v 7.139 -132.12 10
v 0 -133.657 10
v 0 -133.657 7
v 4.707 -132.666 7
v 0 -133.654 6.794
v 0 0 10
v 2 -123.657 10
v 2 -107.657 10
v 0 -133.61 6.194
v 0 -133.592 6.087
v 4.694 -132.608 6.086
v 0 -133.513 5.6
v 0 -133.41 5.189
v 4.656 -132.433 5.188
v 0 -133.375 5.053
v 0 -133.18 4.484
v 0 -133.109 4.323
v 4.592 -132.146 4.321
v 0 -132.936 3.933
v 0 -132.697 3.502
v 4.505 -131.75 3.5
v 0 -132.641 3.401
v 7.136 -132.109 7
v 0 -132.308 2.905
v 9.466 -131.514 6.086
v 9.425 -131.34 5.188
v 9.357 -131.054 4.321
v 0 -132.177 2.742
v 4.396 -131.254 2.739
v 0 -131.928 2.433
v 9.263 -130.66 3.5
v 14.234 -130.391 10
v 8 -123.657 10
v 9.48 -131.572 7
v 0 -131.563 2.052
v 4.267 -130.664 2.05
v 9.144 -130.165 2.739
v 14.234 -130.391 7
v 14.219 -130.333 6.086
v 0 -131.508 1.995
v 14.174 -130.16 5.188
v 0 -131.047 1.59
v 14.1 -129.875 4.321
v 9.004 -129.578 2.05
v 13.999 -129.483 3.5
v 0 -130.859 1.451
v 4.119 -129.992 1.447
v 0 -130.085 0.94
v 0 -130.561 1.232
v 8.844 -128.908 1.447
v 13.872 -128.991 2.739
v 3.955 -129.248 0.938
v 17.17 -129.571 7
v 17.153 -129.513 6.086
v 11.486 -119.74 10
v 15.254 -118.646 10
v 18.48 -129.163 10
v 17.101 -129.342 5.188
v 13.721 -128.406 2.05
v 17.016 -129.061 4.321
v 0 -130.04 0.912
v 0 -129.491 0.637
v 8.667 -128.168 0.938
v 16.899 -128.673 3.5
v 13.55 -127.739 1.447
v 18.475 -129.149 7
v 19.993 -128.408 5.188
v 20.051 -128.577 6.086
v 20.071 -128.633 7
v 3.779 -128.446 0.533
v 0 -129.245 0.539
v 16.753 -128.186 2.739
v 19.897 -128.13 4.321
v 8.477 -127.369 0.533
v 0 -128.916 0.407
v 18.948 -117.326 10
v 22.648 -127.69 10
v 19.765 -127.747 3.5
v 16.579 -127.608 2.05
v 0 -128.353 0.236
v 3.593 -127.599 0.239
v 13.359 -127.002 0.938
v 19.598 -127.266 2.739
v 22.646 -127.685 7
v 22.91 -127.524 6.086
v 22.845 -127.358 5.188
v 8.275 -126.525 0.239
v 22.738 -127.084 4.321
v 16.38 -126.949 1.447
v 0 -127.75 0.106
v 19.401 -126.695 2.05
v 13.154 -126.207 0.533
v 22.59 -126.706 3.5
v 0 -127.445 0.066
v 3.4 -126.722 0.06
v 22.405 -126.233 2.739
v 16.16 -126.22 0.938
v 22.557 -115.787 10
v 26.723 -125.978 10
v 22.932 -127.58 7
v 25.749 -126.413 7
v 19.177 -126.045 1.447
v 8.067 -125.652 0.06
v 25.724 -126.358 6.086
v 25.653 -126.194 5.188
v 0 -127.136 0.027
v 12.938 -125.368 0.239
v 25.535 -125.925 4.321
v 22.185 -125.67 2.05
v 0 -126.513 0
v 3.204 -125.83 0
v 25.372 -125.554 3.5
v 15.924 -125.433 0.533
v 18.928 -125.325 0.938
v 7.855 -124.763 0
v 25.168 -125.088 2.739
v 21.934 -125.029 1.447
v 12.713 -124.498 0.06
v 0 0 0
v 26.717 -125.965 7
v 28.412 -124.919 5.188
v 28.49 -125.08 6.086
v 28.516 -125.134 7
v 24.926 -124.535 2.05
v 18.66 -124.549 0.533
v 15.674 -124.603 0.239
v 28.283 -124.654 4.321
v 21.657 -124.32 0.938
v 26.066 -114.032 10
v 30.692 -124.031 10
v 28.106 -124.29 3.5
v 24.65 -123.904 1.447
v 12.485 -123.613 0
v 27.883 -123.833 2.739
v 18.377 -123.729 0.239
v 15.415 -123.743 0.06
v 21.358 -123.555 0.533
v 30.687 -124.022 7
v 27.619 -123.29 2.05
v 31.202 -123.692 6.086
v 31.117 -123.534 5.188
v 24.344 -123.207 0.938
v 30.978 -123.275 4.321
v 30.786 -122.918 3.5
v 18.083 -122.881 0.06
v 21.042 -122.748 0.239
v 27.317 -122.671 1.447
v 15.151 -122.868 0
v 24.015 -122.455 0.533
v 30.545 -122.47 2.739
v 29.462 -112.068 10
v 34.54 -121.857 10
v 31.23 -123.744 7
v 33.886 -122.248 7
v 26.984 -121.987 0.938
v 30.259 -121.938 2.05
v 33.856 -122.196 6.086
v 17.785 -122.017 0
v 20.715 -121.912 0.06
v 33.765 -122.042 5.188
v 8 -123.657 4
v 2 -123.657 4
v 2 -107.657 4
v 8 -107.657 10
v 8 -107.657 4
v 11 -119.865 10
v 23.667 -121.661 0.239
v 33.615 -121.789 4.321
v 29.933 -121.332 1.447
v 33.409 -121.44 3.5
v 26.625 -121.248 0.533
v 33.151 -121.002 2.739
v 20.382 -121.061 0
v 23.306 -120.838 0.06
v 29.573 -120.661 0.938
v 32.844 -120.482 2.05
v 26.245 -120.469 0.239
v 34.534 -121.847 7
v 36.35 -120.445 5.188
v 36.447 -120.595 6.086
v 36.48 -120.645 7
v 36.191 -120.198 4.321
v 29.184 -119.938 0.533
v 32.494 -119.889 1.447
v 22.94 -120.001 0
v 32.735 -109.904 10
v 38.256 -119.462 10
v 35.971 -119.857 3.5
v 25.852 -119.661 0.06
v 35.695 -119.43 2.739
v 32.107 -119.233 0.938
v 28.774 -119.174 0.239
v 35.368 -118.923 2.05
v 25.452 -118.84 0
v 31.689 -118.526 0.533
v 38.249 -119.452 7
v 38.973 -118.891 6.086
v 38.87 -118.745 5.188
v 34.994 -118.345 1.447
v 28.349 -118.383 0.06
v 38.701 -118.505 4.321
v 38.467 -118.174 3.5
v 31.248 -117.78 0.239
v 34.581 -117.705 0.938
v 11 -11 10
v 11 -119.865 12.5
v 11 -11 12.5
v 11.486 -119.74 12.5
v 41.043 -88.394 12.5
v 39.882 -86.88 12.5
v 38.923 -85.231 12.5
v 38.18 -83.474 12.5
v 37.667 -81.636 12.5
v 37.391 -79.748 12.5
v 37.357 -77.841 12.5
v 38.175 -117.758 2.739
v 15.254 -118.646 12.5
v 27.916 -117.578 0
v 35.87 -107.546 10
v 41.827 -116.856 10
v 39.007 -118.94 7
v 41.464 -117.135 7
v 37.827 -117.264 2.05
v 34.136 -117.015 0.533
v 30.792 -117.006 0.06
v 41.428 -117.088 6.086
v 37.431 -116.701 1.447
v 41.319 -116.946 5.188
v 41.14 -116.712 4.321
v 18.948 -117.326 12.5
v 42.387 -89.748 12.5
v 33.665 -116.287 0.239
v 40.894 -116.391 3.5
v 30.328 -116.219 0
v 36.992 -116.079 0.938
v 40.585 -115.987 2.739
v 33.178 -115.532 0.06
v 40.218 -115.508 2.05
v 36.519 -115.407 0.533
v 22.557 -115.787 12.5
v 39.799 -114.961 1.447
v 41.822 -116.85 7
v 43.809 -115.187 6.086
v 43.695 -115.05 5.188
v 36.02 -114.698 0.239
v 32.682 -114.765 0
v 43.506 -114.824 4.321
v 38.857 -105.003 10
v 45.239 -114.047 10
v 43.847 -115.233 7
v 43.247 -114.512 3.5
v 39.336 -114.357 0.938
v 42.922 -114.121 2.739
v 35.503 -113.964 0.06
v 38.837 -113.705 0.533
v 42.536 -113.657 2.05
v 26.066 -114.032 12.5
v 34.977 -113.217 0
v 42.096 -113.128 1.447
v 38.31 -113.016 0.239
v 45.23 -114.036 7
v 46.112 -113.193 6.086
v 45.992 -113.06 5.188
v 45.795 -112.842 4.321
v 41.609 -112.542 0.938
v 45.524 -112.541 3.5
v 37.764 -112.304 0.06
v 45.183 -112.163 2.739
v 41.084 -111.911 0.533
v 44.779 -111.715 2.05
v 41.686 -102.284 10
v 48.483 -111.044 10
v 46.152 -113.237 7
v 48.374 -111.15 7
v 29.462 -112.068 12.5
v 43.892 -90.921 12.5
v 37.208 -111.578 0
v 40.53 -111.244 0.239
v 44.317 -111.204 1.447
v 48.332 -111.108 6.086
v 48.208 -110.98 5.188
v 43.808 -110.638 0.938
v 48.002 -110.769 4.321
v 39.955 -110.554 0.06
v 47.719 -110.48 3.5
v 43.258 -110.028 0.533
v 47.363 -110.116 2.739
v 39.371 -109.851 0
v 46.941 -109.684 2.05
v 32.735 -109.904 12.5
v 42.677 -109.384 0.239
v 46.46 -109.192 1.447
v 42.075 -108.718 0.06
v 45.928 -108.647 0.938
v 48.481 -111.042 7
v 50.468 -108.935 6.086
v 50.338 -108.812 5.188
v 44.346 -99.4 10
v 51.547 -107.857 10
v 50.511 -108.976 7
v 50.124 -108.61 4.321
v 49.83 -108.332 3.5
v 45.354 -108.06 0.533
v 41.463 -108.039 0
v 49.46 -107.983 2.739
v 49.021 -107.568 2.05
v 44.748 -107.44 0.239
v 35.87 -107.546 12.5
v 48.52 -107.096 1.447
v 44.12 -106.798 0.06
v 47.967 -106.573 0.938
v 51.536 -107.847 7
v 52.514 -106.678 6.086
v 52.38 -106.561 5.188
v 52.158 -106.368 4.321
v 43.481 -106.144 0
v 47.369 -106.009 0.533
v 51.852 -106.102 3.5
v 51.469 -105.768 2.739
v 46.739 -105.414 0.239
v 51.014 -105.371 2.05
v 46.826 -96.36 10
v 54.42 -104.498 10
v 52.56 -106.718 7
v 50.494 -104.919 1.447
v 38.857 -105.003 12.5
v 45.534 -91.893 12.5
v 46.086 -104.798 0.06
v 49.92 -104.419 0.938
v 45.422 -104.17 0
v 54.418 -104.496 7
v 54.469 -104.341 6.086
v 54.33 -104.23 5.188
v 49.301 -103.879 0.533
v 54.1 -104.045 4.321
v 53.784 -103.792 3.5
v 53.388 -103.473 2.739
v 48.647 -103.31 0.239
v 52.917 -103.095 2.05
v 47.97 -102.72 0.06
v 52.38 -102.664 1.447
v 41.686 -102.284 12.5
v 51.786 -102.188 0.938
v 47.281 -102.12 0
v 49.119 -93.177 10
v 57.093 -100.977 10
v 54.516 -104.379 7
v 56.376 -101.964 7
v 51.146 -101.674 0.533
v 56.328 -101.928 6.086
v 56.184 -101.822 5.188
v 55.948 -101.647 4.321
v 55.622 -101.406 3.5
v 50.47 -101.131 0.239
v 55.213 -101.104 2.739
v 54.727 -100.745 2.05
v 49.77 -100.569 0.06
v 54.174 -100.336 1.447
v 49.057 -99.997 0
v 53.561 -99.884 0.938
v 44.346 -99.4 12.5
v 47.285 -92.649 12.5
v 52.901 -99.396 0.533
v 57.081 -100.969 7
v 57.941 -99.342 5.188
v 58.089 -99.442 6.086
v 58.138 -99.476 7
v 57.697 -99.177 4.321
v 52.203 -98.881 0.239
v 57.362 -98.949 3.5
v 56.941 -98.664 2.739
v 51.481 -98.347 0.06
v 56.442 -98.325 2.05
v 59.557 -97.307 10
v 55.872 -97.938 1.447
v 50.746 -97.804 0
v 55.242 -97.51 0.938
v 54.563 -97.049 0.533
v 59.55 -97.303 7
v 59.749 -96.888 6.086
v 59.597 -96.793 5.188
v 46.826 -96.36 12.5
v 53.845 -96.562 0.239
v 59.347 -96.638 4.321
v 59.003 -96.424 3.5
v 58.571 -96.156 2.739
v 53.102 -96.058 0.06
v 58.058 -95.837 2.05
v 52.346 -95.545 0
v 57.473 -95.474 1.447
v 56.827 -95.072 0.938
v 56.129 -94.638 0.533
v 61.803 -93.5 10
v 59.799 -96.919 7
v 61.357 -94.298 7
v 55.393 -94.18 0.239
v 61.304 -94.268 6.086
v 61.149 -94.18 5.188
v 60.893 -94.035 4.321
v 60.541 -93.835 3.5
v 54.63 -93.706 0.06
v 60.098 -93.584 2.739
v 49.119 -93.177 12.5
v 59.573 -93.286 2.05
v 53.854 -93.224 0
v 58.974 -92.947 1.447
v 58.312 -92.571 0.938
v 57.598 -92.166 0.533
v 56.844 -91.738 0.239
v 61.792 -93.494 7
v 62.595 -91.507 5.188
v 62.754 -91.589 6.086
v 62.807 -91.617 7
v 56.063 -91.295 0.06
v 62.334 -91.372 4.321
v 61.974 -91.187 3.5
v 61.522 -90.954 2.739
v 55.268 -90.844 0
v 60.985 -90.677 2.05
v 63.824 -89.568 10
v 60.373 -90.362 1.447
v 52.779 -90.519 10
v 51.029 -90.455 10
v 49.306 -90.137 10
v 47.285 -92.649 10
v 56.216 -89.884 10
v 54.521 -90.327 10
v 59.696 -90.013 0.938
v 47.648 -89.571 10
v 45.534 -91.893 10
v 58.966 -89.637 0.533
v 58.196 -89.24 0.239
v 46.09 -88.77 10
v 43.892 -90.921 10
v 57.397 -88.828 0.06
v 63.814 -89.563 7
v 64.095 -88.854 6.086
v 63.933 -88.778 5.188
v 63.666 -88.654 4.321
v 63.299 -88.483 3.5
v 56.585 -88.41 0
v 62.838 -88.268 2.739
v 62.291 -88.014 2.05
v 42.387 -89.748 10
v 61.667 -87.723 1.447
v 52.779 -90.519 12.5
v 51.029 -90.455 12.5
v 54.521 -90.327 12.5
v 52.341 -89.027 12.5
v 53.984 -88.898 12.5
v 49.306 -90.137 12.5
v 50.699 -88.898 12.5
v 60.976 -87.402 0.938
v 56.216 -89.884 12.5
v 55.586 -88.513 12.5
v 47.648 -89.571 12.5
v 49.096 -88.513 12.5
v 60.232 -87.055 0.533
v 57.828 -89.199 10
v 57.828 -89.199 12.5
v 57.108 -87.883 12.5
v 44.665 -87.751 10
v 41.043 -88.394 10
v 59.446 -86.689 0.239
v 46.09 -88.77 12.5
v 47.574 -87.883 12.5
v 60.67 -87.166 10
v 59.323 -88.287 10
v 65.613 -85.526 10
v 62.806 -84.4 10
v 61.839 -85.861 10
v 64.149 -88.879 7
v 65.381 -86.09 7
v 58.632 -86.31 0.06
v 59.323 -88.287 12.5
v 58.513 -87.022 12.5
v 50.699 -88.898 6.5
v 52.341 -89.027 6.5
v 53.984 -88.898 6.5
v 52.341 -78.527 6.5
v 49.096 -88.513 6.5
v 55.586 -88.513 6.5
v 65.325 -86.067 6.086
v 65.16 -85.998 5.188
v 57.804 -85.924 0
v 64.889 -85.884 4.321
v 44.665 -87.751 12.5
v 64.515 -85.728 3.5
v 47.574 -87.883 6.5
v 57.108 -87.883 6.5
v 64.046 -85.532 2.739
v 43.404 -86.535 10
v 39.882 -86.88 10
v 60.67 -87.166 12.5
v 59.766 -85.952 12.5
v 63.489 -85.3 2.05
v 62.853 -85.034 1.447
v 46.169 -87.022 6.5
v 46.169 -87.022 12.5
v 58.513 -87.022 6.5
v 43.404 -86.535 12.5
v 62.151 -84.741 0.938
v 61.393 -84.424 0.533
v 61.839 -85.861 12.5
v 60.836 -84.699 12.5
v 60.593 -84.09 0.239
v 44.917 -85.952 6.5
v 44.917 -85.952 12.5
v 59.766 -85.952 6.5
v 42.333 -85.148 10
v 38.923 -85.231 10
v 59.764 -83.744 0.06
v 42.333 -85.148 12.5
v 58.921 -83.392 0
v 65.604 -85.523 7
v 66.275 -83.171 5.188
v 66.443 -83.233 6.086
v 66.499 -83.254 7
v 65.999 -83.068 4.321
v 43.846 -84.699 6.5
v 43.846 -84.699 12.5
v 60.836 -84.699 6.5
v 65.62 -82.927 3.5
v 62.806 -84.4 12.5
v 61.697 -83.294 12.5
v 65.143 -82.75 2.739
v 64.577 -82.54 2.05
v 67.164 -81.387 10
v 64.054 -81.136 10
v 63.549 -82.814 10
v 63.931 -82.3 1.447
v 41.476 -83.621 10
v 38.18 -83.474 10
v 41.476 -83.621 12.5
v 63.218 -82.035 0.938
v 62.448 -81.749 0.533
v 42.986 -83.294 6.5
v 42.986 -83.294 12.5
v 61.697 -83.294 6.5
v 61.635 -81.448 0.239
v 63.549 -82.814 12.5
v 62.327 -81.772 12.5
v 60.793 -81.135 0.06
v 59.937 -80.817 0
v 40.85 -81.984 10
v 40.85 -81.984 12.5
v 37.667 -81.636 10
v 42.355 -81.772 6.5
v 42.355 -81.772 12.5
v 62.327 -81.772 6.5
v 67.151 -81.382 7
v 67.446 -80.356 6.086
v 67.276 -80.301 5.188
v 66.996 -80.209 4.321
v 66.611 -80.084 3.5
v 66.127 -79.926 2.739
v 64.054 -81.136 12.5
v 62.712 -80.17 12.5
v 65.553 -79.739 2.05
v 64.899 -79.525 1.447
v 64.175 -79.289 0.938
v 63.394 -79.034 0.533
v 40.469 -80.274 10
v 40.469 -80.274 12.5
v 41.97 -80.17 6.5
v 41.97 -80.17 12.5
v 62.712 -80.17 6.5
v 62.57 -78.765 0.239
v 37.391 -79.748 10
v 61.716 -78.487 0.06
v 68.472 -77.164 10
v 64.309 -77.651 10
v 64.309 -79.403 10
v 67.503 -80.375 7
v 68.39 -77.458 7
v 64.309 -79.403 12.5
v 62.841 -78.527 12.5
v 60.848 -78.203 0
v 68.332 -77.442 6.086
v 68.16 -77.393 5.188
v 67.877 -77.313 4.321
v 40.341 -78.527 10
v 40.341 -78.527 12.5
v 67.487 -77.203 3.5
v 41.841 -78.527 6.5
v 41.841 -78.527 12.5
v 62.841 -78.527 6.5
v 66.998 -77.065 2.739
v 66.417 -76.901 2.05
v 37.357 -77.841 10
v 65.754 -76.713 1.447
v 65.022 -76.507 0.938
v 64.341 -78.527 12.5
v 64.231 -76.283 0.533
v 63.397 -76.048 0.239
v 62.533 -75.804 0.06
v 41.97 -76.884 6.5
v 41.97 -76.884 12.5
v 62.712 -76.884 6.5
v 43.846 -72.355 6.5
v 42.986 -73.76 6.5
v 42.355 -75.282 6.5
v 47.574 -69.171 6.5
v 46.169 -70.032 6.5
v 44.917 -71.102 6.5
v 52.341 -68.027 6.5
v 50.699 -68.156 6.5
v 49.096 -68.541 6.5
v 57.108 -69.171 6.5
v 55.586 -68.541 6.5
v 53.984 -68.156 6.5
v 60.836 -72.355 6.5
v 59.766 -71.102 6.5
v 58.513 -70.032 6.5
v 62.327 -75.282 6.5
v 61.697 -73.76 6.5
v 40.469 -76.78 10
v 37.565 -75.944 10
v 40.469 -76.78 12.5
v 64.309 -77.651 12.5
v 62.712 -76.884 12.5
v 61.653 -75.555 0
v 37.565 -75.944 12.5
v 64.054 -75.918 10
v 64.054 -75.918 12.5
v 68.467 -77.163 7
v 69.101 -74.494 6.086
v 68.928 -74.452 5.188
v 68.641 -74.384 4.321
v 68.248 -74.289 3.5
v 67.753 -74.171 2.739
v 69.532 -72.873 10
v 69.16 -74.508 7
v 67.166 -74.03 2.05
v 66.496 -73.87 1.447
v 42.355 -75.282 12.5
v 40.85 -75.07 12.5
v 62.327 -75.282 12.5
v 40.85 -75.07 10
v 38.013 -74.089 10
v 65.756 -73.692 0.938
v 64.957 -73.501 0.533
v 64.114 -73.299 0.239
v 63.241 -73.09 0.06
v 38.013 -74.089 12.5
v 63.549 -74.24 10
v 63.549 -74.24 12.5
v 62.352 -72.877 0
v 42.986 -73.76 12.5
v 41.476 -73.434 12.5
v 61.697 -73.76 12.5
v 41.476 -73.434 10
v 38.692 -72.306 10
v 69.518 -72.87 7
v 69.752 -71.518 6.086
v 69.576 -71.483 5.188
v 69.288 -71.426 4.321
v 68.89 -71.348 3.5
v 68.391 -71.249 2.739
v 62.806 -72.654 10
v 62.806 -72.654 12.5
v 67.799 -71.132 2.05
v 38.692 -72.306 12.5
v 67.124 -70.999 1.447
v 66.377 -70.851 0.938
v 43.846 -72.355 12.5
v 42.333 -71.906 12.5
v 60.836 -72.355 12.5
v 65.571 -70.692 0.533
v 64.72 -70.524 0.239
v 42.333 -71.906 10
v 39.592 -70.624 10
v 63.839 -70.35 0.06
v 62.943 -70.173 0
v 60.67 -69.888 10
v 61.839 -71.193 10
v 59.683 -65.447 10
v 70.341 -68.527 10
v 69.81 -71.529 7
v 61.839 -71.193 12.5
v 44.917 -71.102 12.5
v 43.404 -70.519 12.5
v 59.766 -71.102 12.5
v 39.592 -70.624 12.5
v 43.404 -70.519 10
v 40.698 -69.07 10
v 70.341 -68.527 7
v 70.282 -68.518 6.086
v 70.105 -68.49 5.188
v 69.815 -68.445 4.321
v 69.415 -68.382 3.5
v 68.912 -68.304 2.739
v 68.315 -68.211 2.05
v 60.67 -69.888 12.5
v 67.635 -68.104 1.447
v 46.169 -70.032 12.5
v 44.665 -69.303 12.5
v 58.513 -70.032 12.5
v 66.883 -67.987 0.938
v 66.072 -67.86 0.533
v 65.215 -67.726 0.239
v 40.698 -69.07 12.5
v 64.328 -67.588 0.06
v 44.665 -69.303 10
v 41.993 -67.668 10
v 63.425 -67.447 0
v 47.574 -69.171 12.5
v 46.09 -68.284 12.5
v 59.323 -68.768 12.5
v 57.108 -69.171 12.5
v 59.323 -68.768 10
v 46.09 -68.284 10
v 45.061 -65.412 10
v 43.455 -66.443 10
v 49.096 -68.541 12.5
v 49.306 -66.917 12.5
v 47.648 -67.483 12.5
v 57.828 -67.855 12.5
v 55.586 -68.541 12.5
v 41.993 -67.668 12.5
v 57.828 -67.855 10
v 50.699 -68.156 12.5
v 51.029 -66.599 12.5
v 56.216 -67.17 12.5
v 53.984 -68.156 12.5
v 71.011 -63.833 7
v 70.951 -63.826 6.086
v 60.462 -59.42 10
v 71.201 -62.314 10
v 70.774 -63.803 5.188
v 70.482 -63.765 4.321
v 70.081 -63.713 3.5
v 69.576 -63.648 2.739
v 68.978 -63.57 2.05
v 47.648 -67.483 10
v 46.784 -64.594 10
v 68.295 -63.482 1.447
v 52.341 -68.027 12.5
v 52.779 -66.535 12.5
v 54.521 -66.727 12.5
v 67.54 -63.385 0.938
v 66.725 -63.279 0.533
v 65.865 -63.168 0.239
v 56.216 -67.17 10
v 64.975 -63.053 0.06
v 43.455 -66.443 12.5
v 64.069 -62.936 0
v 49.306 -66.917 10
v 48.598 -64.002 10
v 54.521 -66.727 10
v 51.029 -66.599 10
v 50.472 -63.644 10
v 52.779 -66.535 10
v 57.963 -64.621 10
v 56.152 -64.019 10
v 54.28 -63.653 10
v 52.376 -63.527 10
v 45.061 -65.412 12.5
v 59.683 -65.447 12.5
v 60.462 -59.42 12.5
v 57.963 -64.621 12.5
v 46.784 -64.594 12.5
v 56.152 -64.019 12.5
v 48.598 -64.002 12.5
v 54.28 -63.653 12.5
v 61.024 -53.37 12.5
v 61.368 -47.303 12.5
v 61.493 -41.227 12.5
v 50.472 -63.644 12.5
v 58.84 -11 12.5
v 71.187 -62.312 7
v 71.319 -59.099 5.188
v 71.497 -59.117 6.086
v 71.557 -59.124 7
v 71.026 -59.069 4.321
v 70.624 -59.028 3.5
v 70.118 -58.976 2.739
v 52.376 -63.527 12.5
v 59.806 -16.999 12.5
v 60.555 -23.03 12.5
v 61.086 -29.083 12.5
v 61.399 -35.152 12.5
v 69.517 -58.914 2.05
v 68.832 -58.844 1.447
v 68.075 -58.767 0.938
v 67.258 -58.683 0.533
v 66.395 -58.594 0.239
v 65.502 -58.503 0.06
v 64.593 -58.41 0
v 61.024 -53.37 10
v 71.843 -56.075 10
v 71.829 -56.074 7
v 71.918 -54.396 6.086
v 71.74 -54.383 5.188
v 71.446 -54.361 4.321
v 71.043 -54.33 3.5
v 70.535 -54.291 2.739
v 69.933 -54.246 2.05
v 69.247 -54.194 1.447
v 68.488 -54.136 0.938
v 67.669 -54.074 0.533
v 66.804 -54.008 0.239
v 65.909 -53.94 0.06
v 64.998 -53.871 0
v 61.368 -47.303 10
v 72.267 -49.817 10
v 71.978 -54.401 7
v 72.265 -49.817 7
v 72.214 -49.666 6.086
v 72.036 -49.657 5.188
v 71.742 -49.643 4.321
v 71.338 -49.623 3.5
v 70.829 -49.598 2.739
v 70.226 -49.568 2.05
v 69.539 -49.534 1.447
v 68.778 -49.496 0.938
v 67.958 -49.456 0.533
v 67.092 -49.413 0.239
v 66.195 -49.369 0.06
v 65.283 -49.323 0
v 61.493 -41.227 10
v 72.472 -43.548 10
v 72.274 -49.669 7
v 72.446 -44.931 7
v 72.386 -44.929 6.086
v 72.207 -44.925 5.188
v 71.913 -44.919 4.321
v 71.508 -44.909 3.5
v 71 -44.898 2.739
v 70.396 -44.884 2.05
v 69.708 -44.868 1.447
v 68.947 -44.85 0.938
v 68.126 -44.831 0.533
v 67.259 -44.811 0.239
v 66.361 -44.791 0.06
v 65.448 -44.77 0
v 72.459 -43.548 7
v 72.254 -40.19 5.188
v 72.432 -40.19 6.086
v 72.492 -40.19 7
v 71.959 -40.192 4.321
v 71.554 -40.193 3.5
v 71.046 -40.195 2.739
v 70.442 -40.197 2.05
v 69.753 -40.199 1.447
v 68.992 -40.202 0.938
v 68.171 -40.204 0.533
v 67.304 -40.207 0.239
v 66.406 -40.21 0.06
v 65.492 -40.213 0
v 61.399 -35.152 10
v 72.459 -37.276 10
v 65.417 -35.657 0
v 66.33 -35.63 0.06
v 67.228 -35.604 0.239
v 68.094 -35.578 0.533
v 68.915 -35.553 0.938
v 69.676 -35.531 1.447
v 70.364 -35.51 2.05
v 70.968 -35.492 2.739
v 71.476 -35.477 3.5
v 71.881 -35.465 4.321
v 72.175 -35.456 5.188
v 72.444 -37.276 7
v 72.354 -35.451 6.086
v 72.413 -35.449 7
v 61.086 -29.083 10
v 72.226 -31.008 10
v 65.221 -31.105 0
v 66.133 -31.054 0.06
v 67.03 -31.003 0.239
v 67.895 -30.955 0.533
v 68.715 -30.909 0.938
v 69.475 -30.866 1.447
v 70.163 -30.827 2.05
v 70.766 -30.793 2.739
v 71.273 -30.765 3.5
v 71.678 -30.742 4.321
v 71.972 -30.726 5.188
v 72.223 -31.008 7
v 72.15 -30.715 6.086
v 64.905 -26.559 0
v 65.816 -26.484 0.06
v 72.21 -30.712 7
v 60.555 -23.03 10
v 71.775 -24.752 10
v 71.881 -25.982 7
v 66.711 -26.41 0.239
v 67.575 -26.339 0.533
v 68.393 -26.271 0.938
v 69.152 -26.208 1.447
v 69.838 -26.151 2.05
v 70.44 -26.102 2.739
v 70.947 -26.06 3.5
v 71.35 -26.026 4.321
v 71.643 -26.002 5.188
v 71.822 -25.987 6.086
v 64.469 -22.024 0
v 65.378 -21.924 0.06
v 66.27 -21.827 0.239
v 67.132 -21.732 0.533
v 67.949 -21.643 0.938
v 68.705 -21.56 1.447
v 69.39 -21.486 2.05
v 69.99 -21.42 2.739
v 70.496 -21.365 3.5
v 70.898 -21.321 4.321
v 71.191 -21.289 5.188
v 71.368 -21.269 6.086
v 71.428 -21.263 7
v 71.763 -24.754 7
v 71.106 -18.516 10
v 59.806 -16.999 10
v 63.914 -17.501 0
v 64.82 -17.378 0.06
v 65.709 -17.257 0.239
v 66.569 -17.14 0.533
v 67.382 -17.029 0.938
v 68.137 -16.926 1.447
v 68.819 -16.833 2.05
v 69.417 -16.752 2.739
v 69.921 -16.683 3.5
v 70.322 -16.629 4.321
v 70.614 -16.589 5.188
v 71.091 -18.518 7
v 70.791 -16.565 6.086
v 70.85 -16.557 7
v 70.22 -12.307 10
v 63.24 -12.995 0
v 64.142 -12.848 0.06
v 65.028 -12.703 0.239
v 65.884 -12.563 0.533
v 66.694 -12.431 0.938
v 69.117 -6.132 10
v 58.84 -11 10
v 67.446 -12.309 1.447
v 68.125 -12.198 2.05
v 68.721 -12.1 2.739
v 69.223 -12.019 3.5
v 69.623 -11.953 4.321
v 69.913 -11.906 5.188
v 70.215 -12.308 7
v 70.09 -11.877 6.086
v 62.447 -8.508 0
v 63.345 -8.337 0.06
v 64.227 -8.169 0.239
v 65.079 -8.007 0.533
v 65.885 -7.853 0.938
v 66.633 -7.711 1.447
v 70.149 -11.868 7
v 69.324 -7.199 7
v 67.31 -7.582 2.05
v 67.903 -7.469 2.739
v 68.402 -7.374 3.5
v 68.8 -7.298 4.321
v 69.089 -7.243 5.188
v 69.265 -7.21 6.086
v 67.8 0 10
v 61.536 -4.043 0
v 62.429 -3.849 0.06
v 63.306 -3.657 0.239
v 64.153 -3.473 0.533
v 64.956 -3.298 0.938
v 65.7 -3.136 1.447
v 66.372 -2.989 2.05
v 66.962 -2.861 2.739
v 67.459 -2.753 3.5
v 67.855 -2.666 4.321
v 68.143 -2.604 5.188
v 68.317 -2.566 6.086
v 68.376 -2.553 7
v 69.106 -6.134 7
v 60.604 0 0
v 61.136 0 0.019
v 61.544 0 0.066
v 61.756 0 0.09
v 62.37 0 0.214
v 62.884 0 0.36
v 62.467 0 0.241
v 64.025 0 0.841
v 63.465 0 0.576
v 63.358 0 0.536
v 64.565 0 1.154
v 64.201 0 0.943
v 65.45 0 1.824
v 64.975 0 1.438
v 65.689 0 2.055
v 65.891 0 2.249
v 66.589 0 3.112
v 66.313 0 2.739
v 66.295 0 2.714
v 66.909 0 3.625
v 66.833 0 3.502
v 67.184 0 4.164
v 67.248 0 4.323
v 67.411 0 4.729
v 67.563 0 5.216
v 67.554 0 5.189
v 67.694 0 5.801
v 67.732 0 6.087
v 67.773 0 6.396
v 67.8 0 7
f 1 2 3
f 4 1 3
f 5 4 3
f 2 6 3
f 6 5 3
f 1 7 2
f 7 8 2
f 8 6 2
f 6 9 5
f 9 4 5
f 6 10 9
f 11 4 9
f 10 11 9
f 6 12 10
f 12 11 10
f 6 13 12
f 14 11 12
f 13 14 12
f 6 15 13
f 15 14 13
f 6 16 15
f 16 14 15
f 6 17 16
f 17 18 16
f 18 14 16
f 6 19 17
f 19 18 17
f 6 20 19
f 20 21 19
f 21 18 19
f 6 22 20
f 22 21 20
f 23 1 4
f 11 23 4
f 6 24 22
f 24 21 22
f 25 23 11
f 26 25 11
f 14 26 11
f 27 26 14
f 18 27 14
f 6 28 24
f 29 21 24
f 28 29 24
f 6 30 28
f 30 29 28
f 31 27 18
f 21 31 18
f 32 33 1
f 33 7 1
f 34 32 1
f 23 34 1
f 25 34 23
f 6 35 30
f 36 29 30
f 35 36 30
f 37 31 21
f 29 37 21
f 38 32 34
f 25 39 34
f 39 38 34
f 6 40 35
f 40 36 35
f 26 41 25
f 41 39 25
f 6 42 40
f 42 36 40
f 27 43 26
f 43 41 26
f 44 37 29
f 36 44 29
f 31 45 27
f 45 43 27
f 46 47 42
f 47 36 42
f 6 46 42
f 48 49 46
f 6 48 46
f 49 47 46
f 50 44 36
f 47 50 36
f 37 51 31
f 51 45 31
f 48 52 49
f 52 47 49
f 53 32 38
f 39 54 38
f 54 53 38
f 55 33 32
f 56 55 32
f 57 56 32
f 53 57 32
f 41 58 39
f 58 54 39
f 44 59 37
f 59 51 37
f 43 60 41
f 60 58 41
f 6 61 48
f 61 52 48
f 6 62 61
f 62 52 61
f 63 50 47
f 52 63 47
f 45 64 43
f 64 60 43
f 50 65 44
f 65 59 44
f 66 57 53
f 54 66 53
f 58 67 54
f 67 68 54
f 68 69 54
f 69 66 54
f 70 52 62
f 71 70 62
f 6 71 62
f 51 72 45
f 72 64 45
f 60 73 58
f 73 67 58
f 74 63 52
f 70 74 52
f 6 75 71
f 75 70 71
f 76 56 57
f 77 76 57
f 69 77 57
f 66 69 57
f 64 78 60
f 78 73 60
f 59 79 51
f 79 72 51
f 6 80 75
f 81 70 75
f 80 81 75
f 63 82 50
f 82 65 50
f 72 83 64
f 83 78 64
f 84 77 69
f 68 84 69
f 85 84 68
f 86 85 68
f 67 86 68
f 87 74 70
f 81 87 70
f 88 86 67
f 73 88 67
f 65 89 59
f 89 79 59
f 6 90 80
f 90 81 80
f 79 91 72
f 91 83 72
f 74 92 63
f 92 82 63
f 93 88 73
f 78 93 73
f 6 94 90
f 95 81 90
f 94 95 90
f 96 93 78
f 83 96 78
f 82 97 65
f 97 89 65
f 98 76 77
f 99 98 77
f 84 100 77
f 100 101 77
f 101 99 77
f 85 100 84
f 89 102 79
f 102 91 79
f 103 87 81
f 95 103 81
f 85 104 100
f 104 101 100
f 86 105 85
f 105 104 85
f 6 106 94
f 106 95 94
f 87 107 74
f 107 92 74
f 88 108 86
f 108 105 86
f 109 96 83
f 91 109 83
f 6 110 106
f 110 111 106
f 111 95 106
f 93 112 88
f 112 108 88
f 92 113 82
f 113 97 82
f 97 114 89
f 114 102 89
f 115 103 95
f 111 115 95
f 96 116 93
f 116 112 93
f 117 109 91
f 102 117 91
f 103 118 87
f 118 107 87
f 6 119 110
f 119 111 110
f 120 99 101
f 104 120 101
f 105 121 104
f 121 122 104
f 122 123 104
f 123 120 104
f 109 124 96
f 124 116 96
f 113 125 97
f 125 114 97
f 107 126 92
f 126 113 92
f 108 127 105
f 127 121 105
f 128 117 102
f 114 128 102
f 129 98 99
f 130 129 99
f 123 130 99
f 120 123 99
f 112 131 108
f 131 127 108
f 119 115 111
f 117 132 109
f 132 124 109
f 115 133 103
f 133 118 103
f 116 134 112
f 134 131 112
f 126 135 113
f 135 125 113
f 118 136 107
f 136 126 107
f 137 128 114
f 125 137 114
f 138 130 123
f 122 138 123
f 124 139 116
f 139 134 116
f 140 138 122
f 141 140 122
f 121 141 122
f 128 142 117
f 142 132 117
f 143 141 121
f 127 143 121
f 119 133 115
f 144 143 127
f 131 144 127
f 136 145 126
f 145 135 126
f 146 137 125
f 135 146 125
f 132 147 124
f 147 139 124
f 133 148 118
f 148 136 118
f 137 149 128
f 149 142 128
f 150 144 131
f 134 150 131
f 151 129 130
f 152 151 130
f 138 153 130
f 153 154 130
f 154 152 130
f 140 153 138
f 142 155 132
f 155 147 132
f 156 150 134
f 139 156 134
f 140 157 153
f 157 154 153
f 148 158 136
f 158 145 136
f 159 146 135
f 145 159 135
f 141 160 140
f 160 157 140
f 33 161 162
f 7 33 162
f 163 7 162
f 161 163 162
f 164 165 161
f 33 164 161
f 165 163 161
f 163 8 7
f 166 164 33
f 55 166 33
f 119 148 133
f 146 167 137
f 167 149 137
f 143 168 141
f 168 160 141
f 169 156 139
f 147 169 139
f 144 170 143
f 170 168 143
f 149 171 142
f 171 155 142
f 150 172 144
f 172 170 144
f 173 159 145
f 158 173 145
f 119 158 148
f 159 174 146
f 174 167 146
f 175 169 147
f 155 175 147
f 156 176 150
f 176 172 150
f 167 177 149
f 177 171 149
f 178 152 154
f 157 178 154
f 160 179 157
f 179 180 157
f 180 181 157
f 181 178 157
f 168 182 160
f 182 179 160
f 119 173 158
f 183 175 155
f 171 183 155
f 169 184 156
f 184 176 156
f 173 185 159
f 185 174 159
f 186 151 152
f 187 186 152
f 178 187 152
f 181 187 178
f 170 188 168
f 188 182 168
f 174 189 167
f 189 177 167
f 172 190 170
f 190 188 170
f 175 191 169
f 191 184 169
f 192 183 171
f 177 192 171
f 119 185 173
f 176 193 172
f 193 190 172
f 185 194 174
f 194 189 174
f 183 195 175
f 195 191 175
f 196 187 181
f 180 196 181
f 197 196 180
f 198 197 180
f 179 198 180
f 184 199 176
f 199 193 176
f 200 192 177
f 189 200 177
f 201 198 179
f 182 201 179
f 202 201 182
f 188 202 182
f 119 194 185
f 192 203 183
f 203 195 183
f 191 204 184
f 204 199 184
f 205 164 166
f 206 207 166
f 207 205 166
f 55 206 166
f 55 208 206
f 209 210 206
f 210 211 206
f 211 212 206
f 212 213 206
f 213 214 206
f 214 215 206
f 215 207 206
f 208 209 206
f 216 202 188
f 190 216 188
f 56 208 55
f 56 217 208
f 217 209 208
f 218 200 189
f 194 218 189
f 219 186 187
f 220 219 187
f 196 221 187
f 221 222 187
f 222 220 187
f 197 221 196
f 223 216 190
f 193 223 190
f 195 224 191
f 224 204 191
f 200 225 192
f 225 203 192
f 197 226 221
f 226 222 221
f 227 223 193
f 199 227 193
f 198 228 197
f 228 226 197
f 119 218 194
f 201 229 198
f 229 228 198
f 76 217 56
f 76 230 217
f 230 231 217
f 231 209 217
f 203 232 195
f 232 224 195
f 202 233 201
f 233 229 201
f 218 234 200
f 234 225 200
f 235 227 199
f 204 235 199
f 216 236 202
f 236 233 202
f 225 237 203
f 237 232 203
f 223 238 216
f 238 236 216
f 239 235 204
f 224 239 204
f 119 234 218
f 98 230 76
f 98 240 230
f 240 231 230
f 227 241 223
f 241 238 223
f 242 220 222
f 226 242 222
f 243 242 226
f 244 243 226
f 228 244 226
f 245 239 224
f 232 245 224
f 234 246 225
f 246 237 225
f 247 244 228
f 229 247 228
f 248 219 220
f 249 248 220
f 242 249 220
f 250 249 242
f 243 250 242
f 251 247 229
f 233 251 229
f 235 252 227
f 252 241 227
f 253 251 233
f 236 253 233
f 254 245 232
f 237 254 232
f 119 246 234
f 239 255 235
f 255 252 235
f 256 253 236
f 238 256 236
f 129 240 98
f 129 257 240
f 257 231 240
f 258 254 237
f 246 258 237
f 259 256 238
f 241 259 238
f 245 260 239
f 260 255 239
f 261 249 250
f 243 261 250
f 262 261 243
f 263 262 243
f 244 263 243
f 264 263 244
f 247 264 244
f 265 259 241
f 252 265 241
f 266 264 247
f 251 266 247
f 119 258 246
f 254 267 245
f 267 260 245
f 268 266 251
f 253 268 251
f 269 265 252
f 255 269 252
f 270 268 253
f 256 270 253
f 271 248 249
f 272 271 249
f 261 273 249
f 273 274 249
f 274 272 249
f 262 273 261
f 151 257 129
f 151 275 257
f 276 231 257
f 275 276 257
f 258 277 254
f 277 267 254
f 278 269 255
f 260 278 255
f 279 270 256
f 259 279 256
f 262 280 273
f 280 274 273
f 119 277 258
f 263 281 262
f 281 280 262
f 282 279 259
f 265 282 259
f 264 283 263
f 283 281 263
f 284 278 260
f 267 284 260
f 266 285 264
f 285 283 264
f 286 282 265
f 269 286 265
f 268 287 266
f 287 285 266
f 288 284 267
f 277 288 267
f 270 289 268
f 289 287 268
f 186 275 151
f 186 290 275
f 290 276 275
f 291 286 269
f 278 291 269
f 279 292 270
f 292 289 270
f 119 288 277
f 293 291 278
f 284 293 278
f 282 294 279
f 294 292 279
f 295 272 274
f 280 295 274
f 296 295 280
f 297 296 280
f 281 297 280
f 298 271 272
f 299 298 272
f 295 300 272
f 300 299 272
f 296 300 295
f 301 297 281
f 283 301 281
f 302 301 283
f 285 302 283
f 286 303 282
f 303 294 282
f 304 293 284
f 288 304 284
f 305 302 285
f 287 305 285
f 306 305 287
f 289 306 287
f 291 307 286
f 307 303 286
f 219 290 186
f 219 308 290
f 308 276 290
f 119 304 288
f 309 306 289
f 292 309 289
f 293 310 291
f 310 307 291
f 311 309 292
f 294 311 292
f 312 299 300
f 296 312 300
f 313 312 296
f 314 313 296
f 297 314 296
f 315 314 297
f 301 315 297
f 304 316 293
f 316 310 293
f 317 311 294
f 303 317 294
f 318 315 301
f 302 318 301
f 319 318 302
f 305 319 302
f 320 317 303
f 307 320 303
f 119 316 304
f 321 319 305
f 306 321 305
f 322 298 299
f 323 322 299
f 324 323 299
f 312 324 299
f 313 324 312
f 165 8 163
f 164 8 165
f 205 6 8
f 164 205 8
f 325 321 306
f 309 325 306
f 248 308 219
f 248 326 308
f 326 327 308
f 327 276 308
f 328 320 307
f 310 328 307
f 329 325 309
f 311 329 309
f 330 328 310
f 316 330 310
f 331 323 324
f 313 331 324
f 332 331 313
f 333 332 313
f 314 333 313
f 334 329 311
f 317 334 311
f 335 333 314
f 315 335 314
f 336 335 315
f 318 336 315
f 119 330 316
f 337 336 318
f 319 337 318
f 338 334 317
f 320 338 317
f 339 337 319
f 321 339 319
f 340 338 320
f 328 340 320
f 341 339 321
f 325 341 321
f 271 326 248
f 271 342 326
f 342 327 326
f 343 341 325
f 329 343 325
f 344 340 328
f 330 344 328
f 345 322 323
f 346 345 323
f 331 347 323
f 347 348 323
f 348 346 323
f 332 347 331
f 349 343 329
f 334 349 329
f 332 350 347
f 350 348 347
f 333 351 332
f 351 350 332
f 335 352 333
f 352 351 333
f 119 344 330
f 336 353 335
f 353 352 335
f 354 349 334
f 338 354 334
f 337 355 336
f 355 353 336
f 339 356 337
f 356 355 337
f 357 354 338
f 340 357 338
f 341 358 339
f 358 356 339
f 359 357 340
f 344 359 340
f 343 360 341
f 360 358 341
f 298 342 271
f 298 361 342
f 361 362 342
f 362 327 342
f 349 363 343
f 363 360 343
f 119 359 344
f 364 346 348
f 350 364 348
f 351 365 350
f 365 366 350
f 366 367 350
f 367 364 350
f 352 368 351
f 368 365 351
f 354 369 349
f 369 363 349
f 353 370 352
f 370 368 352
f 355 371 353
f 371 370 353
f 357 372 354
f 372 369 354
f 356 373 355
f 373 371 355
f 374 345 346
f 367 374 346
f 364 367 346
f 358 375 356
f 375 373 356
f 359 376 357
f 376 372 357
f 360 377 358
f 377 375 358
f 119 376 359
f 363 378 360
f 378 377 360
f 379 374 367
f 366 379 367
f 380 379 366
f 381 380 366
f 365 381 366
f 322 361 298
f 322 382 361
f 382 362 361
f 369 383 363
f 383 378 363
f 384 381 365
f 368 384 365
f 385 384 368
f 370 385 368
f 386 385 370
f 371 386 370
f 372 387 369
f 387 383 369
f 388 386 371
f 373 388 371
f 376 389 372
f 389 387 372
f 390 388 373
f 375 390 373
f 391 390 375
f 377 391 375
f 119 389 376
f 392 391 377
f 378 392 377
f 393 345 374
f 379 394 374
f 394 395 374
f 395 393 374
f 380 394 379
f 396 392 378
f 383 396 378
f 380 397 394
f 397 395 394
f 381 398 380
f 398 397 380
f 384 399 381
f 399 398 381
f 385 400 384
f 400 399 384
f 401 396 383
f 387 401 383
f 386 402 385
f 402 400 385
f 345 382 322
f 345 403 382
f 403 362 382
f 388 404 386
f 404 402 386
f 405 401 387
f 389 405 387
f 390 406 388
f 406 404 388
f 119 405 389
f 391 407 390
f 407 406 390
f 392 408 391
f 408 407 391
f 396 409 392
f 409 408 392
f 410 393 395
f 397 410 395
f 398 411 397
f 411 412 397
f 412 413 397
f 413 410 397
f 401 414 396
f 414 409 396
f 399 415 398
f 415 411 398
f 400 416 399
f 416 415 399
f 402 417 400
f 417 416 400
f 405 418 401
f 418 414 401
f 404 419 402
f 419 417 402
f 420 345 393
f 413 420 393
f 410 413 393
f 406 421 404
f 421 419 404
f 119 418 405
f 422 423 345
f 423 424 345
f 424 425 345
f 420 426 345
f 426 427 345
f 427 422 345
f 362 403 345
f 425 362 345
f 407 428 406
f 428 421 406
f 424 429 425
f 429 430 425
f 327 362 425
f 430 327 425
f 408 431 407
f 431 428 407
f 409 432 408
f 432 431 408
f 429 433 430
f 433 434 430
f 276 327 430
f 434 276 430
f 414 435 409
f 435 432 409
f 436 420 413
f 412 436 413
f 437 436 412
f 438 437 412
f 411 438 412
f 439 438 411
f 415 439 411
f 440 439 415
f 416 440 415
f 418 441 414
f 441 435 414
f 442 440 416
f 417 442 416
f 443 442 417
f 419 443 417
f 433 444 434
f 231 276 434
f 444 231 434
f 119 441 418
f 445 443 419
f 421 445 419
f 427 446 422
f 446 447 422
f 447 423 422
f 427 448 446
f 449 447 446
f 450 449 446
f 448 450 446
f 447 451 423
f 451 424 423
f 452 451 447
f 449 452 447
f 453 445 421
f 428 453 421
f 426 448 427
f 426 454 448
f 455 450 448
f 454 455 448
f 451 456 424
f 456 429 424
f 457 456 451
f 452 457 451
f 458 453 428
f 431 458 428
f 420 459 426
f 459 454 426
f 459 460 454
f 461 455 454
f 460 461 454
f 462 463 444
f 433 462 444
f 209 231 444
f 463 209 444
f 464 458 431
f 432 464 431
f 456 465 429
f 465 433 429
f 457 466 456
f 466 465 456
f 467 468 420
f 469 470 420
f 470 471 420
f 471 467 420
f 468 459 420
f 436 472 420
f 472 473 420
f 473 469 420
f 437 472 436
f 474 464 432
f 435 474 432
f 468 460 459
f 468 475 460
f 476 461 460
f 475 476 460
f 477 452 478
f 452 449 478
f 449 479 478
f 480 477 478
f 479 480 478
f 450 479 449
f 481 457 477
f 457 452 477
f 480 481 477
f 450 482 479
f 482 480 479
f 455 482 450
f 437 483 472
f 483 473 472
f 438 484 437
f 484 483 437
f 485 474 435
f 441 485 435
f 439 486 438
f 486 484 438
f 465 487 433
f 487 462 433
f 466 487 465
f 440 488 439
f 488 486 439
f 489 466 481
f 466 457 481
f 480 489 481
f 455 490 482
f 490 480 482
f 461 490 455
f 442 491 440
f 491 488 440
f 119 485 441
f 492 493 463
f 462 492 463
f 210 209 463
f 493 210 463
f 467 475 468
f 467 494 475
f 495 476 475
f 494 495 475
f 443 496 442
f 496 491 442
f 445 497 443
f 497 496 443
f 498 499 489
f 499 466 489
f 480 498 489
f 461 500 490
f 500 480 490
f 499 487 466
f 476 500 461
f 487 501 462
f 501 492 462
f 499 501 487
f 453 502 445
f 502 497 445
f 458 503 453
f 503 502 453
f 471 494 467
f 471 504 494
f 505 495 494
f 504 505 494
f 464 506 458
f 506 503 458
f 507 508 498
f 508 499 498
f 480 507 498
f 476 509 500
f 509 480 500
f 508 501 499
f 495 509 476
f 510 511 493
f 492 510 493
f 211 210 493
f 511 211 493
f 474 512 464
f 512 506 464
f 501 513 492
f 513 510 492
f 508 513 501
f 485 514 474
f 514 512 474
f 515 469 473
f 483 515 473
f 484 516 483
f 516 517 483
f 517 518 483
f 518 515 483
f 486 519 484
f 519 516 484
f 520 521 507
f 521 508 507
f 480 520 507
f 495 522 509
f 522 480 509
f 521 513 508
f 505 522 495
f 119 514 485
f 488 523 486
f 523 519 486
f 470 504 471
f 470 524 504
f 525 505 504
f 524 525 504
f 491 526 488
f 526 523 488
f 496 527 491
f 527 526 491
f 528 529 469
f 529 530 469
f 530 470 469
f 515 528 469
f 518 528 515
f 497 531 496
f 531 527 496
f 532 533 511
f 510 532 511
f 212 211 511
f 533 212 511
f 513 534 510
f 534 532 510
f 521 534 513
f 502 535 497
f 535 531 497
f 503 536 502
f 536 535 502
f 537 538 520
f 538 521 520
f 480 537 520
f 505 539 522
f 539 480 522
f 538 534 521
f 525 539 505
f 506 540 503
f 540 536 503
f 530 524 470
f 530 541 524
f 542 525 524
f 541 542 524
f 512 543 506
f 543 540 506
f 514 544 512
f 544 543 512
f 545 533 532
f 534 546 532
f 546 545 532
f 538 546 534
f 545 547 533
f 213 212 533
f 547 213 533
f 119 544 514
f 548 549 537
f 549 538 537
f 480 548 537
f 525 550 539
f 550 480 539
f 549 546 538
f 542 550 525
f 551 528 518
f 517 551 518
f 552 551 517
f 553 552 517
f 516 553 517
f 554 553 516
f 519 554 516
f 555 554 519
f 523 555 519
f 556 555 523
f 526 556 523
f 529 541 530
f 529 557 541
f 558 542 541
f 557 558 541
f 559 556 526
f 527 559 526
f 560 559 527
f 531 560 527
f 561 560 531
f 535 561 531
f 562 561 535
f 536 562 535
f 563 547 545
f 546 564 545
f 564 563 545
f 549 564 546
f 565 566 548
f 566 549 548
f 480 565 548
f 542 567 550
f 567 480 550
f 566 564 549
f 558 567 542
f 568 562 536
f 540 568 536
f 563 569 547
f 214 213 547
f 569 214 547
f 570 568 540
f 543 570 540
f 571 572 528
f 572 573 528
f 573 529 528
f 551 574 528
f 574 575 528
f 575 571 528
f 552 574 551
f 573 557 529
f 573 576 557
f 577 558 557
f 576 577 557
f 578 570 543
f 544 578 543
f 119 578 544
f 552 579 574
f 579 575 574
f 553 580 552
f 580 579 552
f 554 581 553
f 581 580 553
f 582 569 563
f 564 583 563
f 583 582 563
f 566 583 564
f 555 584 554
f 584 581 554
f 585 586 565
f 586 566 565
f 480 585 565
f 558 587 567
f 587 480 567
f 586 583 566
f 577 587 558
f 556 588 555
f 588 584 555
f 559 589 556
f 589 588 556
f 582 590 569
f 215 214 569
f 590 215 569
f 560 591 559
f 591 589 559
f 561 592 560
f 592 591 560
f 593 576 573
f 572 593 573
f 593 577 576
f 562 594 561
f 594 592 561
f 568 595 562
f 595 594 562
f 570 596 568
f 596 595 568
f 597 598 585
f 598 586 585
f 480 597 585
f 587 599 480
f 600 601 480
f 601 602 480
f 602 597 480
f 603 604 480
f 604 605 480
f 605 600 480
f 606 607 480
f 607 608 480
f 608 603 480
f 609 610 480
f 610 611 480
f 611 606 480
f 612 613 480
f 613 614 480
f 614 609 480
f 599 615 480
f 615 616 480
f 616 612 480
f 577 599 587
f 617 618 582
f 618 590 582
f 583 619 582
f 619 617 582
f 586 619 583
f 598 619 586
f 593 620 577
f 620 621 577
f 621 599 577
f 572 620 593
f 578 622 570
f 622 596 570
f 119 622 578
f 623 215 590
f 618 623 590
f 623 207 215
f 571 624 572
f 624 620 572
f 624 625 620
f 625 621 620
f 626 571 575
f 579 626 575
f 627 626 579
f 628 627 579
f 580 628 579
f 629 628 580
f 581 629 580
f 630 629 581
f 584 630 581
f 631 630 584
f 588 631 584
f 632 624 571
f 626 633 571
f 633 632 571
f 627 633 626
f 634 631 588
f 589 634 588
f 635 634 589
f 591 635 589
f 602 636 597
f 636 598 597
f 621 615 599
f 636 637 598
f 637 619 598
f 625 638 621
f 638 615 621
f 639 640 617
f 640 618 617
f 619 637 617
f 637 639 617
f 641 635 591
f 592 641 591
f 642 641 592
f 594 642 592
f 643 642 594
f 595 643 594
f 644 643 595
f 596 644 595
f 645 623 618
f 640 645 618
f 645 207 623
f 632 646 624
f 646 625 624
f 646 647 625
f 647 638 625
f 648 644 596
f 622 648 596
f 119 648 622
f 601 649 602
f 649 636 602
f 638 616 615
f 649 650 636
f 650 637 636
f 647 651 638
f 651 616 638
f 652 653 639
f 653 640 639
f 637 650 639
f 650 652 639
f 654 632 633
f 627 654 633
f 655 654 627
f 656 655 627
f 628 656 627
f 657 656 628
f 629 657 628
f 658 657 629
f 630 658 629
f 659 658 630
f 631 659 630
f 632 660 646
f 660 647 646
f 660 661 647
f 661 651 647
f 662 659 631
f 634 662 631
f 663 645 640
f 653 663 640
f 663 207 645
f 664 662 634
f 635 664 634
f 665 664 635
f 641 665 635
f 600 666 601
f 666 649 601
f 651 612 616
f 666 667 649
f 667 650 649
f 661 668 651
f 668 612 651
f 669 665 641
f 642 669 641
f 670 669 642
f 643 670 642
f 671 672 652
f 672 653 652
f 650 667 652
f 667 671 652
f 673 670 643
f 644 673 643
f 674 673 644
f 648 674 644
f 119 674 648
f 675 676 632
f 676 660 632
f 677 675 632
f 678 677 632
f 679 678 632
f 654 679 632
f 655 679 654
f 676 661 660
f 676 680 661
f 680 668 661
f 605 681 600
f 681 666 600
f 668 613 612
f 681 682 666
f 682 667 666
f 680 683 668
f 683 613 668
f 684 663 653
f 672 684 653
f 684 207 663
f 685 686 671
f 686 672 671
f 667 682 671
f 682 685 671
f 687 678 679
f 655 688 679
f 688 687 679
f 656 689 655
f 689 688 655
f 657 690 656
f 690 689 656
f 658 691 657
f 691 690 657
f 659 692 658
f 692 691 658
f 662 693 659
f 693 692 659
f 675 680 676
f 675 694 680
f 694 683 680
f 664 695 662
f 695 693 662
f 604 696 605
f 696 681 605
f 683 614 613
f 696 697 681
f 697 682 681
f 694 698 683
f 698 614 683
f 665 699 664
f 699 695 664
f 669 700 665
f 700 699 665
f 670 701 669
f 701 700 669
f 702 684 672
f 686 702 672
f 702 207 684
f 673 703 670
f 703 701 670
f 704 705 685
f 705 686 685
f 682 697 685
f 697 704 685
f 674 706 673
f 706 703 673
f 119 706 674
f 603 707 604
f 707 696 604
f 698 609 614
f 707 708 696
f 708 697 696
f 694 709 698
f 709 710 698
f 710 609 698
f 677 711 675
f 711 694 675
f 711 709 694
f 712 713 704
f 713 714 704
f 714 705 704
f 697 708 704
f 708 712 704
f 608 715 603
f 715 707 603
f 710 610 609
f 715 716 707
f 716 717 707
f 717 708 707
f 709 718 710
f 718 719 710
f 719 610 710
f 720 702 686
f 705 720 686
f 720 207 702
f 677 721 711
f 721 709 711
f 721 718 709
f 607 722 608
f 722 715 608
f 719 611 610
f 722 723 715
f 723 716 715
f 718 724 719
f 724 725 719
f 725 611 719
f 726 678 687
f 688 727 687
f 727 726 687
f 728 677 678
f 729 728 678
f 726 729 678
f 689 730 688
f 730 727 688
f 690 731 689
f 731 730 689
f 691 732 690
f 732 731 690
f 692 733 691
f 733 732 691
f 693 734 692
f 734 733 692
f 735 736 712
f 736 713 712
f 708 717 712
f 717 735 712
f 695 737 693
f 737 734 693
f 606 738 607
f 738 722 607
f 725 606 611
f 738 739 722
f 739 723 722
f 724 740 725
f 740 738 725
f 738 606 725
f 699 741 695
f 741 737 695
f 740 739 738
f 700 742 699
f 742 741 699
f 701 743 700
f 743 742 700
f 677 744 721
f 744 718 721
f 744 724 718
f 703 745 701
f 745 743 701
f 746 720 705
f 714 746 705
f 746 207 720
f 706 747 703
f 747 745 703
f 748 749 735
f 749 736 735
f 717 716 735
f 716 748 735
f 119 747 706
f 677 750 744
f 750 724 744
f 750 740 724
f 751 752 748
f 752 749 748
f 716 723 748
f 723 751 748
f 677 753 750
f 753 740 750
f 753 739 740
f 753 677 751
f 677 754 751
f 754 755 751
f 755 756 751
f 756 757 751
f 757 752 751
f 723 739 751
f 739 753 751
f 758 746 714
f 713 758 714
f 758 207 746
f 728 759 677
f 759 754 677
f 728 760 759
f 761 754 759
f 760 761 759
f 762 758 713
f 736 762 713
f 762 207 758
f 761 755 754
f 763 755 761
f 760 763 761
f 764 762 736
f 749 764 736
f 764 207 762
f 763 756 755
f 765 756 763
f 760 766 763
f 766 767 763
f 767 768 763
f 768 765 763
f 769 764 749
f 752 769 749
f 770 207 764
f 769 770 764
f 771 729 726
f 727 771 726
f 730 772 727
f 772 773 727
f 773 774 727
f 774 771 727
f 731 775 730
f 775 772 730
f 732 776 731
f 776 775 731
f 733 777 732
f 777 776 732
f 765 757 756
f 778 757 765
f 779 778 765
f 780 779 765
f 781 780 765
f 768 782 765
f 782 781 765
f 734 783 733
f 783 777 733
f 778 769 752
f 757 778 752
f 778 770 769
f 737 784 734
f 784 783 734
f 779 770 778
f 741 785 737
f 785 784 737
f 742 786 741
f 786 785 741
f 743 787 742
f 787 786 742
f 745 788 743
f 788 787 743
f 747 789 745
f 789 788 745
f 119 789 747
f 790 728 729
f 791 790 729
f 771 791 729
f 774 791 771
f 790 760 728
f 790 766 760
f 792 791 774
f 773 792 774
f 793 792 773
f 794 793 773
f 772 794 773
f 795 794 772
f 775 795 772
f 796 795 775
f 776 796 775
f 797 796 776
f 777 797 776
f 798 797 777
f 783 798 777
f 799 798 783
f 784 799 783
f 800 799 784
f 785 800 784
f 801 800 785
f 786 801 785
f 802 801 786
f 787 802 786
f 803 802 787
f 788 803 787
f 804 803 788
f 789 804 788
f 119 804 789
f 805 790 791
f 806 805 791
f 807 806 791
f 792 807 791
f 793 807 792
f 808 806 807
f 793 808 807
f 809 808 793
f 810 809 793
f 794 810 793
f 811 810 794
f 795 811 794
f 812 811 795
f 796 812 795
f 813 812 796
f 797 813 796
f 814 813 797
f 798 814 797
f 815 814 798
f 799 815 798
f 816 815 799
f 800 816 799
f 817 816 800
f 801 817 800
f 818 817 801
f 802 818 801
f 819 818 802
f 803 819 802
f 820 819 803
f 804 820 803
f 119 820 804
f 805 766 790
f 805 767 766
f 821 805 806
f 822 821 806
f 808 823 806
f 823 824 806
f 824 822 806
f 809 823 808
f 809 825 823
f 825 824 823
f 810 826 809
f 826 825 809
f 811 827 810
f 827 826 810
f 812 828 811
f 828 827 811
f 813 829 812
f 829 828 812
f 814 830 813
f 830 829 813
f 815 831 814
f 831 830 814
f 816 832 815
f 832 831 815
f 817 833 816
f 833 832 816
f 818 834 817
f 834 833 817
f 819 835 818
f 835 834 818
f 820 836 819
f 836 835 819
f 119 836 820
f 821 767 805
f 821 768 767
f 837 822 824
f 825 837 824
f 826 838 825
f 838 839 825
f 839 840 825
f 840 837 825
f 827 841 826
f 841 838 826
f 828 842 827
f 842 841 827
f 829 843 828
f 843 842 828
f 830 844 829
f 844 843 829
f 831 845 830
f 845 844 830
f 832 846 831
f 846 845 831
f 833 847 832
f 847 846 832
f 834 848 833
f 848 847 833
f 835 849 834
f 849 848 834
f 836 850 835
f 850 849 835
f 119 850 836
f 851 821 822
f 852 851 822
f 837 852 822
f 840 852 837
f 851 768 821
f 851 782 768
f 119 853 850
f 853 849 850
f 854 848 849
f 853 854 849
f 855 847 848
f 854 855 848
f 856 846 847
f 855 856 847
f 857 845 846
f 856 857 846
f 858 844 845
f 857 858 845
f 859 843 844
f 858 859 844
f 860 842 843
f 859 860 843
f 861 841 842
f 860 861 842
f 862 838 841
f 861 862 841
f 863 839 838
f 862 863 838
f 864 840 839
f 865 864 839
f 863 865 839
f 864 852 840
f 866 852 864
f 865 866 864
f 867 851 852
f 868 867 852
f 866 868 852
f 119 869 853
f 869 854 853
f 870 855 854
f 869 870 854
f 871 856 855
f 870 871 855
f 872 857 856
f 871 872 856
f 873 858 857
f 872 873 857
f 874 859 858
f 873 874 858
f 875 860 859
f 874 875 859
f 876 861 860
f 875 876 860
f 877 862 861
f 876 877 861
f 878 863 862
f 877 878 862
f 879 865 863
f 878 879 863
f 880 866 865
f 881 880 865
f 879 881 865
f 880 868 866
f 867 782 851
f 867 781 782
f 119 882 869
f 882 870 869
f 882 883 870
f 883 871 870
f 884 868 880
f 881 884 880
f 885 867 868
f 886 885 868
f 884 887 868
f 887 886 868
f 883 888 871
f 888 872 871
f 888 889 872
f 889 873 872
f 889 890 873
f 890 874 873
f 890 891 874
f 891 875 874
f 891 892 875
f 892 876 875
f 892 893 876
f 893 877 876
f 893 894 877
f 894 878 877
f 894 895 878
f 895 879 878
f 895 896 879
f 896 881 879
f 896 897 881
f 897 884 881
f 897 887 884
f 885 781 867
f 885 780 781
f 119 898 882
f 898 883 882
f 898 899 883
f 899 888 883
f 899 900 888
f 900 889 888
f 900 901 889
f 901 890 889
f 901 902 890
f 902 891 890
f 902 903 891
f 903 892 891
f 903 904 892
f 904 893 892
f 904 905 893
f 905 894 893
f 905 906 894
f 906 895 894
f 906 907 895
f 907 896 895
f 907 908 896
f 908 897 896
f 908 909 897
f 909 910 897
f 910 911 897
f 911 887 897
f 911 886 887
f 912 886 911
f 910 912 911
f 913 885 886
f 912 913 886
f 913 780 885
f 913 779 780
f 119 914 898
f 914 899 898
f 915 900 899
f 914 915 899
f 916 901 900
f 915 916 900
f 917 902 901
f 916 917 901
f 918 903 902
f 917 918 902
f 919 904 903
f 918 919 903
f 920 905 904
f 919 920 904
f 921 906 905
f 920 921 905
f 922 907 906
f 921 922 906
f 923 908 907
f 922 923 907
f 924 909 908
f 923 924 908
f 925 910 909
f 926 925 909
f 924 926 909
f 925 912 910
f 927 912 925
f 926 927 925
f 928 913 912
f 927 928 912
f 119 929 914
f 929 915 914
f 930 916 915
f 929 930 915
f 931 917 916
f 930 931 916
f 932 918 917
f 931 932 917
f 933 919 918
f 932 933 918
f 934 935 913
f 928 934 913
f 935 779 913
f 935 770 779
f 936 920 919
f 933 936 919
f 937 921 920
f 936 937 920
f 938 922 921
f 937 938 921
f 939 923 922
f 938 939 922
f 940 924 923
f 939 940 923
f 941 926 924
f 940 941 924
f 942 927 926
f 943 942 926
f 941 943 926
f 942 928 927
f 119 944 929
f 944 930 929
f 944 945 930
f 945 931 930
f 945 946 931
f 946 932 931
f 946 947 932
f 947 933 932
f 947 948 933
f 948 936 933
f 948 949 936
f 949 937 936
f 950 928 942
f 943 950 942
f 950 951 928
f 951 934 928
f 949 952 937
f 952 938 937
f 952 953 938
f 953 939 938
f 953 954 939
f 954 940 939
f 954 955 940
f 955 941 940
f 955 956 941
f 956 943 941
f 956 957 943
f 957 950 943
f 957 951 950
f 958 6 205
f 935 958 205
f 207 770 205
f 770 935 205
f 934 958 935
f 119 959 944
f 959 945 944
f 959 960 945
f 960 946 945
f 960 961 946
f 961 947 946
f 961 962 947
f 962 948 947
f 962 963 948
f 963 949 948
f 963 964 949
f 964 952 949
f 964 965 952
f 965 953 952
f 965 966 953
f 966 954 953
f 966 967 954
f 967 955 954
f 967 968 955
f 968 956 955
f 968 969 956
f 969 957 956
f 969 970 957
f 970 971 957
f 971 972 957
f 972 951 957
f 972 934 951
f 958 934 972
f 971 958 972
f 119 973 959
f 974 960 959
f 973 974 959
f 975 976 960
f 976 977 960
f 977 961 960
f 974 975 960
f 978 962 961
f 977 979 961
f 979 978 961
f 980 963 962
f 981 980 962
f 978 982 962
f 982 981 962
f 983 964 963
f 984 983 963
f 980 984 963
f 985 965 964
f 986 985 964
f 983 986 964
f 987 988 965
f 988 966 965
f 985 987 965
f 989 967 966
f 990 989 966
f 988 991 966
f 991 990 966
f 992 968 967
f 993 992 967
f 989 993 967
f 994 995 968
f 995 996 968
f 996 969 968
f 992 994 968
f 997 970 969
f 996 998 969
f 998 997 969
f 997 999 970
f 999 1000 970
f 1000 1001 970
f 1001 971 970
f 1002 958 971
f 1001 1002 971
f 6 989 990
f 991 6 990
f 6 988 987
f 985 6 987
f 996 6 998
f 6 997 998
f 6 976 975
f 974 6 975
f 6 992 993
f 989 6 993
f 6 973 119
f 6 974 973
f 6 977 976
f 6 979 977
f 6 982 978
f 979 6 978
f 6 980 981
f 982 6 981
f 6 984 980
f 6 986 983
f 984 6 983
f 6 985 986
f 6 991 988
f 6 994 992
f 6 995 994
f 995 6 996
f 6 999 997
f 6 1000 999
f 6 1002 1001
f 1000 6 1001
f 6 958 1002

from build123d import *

# Parameters (mm, degrees)
BOSS_EXTRUDE1_DEPTH = 10
FILLET1_R           = 7
BOSS_EXTRUDE2_DEPTH = 2.5
SKETCH8_W           = 6
SKETCH8_H           = 16
CUT_EXTRUDE1_DEPTH  = 6
SKETCH9_R           = 12
BOSS_EXTRUDE3_DEPTH = 2.5
SKETCH10_R          = 10.5
CUT_EXTRUDE2_DEPTH  = 6


with BuildPart() as part:
    # Sketch1 → Boss-Extrude1 (new body)
    with BuildSketch(Plane.XY):
        with BuildLine():
            Line((0, 0), (67.8, 0))
            ThreePointArc((67.8, 0), (72.369764115, -34.141185106), (70.341123561, -68.527052581))
            ThreePointArc((70.341123561, -68.527052581), (51.546832931, -107.857068487), (14.233546266, -130.391356799))
            ThreePointArc((14.233546266, -130.391356799), (7.138727746, -132.120022188), (0, -133.657325027))
            Line((0, -133.657325027), (0, 0))
        make_face()
    extrude(amount=BOSS_EXTRUDE1_DEPTH)

    # Fillet1
    fillet1_edges = [part.edges().sort_by_distance(p)[0] for p in [
        (72.369764115, -34.141185106, 0),
        (51.546832931, -107.857068487, 0),
        (7.138727746, -132.120022188, 0),
    ]]
    fillet(fillet1_edges, radius=FILLET1_R)

    # Sketch7 → Boss-Extrude2 (add)
    with BuildSketch(Plane.XY.offset(10)):
        with BuildLine():
            Line((11, -11), (11, -119.864879644))
            ThreePointArc((11, -119.864879644), (11.243089625, -119.802551163), (11.486119117, -119.739988621))
            ThreePointArc((11.486119117, -119.739988621), (32.734504551, -109.903861987), (49.119007756, -93.176897964))
            ThreePointArc((49.119007756, -93.176897964), (38.323820757, -73.187087964), (59.682991081, -65.446648104))
            ThreePointArc((59.682991081, -65.446648104), (61.472976924, -38.189093901), (58.840205899, -11))
            Line((58.840205899, -11), (11, -11))
        make_face()
    extrude(amount=BOSS_EXTRUDE2_DEPTH)

    # Sketch8 → Cut-Extrude1 (cut)
    with BuildSketch(Plane.XY.offset(10)):
        with Locations((5, -115.657325027)):
            Rectangle(SKETCH8_W, SKETCH8_H)
    extrude(amount=-CUT_EXTRUDE1_DEPTH, mode=Mode.SUBTRACT)

    # Sketch9 → Boss-Extrude3 (add)
    with BuildSketch(Plane.XY.offset(10)):
        with Locations((52.341123561, -78.527052581)):
            Circle(SKETCH9_R)
    extrude(amount=BOSS_EXTRUDE3_DEPTH)

    # Sketch10 → Cut-Extrude2 (cut)
    with BuildSketch(Plane.XY.offset(12.5)):
        with Locations((52.341123561, -78.527052581)):
            Circle(SKETCH10_R)
    extrude(amount=-CUT_EXTRUDE2_DEPTH, mode=Mode.SUBTRACT)


solid = part.part
